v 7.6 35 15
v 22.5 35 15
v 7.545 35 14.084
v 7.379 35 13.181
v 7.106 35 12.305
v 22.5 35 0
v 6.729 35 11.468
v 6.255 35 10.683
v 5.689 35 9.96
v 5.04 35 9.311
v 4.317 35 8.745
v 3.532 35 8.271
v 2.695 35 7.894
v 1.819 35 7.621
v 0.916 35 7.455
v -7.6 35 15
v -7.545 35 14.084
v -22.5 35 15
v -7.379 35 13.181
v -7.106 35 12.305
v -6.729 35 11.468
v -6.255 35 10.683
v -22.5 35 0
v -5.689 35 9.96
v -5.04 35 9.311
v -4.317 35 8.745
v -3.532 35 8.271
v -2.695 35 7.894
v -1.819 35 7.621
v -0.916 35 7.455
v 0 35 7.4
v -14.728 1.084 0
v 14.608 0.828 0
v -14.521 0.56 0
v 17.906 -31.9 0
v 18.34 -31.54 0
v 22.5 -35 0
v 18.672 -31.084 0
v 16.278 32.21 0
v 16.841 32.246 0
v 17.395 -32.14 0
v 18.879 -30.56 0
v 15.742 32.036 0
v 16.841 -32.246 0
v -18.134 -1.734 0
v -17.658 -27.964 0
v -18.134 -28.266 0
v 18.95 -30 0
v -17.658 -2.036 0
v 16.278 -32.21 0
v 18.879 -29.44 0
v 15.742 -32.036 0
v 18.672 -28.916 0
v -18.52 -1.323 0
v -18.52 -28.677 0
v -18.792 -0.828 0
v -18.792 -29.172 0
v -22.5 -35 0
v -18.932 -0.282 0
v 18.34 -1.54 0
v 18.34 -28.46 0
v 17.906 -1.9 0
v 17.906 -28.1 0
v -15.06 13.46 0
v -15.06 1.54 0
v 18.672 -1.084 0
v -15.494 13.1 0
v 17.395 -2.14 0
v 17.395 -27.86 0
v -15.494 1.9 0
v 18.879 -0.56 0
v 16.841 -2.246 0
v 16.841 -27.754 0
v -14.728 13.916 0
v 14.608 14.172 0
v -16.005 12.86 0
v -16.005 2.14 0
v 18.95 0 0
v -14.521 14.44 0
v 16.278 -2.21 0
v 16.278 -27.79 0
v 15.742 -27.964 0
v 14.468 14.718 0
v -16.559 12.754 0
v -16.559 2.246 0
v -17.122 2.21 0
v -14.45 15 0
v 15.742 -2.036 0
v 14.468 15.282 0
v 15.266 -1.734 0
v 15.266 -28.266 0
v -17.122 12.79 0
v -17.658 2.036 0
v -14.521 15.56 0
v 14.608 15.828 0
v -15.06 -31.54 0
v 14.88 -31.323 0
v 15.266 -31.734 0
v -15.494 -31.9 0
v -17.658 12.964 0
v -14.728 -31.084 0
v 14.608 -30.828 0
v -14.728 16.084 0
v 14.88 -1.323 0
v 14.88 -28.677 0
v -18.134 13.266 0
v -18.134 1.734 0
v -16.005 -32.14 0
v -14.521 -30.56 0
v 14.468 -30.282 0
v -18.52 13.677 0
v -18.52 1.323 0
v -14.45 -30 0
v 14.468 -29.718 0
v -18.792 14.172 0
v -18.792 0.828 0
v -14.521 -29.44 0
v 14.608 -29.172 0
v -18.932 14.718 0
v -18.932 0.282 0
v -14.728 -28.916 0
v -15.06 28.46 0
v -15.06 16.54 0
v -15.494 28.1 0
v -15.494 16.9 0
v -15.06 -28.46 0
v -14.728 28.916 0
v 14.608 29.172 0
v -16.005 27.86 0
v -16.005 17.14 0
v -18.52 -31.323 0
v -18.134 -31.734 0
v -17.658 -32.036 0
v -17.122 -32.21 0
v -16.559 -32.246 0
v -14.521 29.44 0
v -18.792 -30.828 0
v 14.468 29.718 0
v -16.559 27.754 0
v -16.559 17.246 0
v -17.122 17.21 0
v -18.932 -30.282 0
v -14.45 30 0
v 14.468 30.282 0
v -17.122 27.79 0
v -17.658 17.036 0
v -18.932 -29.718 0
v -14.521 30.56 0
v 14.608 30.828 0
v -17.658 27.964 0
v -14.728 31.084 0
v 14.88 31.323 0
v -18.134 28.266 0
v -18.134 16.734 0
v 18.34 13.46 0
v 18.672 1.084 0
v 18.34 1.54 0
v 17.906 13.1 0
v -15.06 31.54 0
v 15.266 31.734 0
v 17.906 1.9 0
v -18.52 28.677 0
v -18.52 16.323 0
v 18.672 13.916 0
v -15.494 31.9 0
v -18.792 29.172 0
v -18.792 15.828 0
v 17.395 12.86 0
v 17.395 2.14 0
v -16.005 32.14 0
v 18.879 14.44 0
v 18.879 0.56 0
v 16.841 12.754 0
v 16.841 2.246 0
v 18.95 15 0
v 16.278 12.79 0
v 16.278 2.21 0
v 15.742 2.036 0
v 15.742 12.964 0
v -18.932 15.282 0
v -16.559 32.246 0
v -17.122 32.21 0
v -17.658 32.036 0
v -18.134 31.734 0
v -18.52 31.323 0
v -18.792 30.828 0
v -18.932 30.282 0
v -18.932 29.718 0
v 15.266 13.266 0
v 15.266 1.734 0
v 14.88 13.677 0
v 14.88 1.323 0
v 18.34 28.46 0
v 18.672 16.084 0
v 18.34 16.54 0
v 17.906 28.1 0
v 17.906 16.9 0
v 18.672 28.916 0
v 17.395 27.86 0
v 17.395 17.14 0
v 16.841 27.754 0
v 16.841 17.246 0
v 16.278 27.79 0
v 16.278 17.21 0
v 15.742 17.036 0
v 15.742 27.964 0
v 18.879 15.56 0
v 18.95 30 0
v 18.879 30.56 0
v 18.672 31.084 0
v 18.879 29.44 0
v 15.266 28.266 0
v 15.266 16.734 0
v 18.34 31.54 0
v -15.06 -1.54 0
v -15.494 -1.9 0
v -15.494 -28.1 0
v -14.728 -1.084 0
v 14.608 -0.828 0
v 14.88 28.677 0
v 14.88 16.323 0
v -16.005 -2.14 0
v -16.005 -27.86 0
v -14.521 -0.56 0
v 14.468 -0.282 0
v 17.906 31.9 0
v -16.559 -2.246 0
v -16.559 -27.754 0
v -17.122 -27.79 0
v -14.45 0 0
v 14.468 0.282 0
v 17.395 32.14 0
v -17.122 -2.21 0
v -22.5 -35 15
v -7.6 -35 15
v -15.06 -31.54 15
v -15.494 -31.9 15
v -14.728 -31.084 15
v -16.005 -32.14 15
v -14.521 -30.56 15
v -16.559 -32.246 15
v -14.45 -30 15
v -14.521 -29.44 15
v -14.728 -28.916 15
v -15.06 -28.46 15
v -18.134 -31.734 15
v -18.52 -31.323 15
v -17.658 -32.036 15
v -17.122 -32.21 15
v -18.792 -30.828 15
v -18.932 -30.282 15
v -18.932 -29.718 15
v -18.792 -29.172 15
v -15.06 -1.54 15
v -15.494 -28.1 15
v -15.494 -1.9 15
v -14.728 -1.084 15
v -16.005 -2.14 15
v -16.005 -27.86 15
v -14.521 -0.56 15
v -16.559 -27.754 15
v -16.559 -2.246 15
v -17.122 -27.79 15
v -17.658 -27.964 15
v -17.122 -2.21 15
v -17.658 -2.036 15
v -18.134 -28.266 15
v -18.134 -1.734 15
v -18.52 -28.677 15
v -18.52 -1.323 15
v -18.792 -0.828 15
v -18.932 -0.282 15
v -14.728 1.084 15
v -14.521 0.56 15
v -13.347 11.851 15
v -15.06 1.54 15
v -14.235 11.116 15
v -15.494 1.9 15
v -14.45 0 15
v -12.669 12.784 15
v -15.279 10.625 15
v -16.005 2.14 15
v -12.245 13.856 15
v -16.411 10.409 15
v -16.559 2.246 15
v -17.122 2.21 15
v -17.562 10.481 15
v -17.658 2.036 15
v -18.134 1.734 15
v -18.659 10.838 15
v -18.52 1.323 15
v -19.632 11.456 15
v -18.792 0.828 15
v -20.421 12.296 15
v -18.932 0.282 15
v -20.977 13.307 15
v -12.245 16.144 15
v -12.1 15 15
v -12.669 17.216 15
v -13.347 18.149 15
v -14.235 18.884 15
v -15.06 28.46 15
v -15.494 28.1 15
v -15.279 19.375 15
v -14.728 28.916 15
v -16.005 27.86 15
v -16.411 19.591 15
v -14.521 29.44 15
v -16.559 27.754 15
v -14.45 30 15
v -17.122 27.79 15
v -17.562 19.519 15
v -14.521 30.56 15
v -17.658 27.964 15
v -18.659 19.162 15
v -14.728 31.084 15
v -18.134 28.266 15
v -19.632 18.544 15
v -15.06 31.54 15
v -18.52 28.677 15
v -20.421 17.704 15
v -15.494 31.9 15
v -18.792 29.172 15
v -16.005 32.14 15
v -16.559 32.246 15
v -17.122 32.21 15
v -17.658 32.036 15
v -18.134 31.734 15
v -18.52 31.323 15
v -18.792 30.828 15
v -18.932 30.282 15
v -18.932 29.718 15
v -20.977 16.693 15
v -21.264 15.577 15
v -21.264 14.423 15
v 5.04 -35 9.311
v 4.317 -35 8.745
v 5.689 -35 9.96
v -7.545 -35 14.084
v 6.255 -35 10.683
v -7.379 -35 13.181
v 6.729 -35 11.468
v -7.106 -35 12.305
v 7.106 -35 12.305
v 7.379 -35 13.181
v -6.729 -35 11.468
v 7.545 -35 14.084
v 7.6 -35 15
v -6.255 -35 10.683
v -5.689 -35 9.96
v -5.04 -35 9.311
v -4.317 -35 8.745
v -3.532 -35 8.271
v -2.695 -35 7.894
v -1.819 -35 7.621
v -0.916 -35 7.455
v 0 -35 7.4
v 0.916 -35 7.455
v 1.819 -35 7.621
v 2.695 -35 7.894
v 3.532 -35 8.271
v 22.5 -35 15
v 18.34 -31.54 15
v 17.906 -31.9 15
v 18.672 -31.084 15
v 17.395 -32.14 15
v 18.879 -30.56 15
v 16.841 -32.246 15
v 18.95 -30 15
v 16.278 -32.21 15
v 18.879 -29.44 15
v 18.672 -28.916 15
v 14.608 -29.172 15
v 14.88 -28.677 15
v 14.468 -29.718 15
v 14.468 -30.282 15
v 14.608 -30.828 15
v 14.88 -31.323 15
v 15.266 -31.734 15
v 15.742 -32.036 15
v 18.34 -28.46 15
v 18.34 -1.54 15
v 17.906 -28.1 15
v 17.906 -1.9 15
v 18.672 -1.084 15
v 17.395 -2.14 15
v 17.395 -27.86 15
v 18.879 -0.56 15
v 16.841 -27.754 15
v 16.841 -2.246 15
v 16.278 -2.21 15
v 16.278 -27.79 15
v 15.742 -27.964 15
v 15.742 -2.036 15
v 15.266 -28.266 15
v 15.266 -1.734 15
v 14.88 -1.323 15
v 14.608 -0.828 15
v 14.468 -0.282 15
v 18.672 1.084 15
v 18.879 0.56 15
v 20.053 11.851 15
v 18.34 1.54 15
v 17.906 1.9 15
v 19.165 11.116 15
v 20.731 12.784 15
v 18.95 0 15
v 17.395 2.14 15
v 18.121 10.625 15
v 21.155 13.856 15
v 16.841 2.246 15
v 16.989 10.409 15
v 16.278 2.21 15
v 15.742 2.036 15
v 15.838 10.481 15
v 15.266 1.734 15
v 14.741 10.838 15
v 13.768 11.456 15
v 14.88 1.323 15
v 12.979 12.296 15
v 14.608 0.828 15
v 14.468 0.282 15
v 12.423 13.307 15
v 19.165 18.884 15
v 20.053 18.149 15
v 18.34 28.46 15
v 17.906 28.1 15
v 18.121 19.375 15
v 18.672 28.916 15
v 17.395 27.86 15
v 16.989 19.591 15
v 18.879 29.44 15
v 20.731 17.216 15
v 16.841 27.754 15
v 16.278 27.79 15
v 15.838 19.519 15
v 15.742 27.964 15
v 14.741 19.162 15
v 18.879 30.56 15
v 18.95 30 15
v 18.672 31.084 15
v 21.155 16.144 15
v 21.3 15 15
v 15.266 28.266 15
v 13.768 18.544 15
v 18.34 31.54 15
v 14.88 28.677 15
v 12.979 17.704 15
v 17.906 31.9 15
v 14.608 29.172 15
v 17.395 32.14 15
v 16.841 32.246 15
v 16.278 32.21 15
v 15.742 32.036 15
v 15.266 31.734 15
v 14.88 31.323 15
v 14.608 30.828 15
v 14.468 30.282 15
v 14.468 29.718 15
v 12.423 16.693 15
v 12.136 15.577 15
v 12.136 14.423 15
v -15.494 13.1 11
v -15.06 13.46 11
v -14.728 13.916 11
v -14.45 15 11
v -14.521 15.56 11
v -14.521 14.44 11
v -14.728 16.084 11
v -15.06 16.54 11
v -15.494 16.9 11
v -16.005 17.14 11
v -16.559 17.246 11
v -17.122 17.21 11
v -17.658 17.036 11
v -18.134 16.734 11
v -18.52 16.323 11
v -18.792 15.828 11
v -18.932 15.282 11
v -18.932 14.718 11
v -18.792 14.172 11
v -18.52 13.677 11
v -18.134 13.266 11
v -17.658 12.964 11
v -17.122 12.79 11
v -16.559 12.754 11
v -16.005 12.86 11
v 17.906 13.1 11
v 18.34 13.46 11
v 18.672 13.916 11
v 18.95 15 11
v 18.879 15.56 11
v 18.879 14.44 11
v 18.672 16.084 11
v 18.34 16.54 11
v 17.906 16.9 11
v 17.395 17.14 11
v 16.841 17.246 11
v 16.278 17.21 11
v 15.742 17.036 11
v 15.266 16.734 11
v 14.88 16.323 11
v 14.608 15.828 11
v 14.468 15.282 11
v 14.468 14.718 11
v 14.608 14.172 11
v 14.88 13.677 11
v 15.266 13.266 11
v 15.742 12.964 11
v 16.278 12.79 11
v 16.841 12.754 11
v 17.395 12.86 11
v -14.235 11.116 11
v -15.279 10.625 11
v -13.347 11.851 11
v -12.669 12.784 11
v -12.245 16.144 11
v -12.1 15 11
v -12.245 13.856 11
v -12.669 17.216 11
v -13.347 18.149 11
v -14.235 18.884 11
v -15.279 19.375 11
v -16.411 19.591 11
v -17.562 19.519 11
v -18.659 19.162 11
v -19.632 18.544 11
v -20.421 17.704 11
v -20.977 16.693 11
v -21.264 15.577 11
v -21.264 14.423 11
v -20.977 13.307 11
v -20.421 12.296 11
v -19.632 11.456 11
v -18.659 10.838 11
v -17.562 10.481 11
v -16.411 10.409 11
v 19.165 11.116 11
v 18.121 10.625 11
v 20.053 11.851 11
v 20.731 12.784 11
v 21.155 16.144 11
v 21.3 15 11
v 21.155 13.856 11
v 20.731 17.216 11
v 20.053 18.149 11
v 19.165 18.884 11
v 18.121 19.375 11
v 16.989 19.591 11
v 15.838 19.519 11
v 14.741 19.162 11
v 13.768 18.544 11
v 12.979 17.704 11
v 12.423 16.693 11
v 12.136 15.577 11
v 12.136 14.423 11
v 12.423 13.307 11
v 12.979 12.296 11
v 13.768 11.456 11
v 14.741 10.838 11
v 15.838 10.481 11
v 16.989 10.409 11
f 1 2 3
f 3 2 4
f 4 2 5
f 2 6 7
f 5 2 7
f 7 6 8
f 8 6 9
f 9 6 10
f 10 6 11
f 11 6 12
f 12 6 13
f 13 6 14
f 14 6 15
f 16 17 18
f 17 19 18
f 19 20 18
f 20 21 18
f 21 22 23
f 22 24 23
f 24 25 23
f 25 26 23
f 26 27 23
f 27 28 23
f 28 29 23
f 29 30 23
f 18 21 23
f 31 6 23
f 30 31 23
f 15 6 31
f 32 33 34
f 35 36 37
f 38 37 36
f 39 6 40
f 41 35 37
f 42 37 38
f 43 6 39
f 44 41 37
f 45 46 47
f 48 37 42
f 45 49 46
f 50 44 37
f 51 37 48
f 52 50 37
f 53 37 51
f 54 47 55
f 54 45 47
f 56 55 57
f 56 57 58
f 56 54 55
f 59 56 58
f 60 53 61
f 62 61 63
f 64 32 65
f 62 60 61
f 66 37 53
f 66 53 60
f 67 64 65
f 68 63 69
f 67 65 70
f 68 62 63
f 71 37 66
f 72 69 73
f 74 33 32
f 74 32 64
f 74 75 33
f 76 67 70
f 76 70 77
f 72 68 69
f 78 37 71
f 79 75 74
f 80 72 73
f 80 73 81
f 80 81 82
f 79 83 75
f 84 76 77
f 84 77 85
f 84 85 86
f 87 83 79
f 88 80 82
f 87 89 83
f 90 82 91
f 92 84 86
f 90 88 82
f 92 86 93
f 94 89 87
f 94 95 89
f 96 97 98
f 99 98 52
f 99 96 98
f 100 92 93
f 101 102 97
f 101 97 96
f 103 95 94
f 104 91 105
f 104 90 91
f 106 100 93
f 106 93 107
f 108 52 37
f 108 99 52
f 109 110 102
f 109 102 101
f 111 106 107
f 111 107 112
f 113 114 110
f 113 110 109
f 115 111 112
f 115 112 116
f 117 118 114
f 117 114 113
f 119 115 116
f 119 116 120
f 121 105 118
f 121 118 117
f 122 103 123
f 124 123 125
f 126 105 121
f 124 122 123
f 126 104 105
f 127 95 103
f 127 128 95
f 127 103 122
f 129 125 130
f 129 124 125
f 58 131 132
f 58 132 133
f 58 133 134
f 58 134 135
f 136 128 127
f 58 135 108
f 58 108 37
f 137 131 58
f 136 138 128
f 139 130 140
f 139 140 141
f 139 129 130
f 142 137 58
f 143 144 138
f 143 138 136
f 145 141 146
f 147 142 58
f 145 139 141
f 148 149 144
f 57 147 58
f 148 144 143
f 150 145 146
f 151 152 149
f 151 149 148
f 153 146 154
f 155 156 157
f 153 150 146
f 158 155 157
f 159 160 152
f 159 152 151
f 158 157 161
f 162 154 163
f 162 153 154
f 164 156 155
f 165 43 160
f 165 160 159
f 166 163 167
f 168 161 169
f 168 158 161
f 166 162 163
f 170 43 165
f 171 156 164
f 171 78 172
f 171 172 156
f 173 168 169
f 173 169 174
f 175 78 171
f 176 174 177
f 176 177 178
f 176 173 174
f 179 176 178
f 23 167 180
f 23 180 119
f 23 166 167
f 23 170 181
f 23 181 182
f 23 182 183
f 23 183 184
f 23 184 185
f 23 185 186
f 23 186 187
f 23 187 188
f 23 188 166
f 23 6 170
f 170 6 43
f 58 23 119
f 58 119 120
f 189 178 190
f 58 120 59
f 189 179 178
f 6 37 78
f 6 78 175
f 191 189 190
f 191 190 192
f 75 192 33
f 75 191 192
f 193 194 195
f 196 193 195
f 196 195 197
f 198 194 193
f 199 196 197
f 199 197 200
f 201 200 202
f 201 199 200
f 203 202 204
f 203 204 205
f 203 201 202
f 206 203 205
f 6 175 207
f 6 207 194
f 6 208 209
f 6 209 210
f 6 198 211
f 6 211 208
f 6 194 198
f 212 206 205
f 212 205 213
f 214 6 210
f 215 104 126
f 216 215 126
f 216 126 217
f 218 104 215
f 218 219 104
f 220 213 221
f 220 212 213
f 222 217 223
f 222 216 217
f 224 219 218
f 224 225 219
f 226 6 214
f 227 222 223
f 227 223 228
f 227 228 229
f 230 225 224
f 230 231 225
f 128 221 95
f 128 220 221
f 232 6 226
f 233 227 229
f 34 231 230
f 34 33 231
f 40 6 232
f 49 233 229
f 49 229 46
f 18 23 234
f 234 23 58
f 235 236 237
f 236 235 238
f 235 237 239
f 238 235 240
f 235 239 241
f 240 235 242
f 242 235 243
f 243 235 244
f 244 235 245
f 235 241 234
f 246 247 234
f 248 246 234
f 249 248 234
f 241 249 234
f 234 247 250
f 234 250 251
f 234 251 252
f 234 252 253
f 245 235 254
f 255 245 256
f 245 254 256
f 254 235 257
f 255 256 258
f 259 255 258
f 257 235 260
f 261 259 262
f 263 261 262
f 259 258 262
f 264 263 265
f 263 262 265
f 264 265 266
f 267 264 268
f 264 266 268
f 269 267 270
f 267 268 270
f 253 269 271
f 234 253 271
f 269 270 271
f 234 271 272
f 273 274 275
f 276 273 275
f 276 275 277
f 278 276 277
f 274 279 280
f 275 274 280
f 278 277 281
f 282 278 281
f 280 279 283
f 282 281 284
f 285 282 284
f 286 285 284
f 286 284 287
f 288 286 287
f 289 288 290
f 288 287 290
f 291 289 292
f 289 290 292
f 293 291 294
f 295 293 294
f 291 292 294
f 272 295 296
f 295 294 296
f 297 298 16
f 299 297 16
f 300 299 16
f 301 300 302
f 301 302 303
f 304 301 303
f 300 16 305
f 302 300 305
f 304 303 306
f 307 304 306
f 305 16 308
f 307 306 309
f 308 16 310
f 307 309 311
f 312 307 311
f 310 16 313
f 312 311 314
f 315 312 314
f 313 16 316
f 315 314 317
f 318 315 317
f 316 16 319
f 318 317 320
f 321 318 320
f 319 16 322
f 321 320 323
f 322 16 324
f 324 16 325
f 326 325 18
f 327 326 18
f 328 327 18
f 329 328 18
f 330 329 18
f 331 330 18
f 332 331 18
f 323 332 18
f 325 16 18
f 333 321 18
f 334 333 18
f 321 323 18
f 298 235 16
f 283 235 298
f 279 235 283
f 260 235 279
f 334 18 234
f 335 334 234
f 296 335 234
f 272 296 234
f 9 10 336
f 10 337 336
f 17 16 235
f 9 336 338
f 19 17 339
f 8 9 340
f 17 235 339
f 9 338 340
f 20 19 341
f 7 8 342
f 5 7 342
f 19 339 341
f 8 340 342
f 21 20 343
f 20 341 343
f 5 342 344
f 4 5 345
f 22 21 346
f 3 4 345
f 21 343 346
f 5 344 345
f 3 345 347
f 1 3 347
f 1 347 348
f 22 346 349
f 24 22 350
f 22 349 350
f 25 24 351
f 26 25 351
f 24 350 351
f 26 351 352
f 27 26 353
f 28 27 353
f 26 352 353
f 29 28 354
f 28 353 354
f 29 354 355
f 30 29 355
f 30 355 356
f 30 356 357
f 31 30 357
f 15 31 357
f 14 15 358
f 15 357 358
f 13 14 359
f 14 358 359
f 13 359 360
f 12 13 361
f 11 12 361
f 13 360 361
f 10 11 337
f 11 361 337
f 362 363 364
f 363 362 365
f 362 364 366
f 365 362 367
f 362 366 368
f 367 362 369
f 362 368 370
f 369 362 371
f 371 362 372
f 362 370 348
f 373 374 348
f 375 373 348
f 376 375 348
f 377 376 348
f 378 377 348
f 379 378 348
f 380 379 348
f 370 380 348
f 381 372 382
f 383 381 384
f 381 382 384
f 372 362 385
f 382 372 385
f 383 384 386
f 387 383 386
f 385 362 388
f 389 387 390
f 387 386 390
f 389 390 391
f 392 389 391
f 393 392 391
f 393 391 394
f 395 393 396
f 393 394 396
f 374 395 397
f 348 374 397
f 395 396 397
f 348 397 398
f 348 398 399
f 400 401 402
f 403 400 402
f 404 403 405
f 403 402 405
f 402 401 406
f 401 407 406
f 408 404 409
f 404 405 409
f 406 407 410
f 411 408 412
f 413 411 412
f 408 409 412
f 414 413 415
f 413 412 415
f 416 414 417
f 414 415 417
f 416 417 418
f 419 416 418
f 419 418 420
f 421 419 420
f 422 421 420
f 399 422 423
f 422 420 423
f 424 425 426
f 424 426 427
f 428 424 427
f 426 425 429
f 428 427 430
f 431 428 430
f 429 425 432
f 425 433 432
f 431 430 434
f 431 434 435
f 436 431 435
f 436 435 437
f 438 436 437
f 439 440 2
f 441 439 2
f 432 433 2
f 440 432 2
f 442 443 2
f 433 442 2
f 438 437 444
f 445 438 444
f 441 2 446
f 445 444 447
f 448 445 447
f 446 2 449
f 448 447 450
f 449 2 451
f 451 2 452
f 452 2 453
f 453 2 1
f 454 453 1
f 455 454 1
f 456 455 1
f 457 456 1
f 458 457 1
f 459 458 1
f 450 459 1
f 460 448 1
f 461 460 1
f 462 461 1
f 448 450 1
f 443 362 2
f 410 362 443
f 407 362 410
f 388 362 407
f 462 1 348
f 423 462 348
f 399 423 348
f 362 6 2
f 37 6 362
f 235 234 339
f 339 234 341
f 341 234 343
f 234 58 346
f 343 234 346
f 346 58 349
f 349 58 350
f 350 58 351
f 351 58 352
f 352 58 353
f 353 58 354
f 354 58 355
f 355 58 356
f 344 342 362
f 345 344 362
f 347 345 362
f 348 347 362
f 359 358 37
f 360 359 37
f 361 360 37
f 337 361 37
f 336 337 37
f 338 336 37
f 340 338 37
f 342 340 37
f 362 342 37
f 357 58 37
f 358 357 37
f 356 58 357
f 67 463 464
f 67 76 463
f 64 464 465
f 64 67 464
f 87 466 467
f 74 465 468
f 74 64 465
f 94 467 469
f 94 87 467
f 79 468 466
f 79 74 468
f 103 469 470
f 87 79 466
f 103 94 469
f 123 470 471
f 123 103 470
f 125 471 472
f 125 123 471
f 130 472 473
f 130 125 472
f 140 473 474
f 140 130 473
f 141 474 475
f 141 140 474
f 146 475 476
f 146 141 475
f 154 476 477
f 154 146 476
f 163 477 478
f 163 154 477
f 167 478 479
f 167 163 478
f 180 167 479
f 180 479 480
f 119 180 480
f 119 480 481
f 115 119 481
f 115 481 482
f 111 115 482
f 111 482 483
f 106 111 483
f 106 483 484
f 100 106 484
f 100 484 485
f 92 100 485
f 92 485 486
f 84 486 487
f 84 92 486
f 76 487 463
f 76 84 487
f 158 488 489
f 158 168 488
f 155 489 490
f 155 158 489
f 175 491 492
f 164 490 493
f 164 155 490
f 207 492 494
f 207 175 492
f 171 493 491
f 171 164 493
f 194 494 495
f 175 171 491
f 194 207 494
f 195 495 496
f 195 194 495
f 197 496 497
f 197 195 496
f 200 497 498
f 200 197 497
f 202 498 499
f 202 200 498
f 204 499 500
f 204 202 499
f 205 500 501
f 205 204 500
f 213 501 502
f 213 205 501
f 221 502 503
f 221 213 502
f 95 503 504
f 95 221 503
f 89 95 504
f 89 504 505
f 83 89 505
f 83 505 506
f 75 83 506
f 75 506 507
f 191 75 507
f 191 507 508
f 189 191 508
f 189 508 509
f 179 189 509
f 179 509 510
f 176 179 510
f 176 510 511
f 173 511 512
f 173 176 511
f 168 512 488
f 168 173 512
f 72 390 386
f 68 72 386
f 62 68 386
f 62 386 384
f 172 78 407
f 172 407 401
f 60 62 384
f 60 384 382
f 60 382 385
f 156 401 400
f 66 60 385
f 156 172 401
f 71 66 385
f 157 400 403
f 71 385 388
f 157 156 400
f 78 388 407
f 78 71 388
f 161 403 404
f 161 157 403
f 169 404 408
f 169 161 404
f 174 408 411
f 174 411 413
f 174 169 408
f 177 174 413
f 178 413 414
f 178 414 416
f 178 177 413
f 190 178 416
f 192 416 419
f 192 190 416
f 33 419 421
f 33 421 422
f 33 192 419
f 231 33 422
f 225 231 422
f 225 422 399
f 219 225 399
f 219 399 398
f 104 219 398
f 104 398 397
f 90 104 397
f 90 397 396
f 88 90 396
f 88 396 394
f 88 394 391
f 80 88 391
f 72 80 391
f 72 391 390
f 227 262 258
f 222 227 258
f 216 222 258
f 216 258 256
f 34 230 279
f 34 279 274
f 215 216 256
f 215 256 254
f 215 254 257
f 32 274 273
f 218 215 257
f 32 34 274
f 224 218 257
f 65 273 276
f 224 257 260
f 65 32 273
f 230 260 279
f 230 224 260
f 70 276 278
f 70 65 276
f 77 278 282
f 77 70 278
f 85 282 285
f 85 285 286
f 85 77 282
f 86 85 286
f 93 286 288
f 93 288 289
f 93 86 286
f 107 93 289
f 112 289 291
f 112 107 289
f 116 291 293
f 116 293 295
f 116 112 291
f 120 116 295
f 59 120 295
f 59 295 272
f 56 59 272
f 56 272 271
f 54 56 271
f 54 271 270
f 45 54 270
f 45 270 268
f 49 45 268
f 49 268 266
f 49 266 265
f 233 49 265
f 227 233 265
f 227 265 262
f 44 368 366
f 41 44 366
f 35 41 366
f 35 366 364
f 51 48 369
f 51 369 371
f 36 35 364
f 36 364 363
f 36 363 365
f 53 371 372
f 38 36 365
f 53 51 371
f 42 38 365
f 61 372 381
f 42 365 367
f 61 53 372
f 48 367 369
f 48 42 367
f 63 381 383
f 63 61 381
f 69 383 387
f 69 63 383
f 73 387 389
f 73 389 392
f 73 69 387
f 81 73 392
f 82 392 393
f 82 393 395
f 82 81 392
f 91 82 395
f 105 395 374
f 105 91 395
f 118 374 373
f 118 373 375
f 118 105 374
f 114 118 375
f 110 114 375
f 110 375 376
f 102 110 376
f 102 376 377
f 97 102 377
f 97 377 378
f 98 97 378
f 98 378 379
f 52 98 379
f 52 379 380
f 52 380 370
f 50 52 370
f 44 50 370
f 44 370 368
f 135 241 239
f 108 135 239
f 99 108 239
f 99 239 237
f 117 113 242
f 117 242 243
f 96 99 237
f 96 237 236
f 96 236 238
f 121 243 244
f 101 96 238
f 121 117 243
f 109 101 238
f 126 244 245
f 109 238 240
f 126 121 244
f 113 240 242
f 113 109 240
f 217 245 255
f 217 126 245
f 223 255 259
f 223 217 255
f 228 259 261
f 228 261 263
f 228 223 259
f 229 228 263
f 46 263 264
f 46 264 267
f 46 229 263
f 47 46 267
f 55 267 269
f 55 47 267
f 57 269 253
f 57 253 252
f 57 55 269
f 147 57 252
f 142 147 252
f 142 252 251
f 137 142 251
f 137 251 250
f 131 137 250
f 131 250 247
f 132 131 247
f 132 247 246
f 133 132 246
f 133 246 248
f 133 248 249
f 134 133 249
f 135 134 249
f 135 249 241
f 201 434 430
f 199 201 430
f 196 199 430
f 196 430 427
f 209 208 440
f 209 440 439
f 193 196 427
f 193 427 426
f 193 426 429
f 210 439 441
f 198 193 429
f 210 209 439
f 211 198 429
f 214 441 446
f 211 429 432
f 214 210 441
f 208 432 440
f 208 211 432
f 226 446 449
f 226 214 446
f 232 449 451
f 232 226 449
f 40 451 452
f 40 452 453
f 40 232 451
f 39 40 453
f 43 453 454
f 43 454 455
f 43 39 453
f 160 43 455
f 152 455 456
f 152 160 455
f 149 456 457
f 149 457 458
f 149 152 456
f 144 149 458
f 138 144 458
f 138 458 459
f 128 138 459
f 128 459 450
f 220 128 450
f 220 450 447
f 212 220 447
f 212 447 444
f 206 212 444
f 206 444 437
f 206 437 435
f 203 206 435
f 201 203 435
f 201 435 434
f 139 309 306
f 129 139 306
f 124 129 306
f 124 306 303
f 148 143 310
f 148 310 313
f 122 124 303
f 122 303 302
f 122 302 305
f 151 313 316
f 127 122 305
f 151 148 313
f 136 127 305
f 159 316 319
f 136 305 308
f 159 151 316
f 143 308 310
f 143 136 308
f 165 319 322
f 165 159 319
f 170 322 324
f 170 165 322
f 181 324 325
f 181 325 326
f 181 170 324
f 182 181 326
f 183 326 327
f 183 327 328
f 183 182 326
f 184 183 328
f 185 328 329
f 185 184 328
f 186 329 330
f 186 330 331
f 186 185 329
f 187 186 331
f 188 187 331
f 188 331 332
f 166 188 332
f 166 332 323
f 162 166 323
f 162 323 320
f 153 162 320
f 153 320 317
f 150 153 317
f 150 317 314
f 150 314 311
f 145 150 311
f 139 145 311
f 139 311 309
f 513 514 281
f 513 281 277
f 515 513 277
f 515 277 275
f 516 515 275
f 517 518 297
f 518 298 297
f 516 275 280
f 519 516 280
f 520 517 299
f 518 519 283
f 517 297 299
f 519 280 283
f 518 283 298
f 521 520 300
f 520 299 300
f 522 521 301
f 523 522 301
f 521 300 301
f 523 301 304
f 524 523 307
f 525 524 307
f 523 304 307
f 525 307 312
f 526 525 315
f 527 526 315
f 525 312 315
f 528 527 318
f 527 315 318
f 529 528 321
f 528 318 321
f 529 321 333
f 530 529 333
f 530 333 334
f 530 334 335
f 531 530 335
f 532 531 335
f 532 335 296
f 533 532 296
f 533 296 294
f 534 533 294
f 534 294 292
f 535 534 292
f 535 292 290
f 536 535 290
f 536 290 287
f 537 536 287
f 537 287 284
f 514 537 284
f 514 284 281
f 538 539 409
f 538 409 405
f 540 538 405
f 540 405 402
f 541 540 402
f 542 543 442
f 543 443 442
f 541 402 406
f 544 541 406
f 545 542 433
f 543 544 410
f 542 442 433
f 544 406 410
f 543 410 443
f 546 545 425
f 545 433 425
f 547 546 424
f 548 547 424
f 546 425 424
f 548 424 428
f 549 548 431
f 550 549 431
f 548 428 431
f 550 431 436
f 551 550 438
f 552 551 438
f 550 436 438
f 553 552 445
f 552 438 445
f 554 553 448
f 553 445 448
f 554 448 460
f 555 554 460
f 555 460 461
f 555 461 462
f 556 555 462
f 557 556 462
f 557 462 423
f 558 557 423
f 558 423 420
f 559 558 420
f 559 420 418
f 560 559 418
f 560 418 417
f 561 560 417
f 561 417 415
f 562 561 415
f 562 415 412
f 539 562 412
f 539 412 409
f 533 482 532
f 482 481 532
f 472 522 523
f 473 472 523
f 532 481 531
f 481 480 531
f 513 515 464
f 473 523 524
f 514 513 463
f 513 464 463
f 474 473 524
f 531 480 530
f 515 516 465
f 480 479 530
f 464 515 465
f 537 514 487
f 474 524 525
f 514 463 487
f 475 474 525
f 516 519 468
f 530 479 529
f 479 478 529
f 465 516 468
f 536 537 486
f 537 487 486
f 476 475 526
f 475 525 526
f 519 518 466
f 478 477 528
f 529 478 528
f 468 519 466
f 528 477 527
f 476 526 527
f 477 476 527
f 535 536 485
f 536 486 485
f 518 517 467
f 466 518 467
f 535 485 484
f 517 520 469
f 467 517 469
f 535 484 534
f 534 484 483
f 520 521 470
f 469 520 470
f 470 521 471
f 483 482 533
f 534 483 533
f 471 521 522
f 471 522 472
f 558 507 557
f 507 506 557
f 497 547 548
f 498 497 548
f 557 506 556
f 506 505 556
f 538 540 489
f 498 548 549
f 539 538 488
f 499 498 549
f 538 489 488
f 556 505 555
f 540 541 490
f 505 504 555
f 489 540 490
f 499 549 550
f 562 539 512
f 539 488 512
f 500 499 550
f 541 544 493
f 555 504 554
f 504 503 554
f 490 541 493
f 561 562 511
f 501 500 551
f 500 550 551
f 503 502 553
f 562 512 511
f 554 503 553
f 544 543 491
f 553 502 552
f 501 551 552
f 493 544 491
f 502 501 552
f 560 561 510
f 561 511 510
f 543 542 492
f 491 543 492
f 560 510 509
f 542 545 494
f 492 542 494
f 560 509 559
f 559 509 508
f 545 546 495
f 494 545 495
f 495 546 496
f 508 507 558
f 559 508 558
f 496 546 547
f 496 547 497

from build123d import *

# Parameters (mm, degrees)
SKETCH_W        = 45
SKETCH_H        = 70
SKETCH_R        = 2.25
PAD_DEPTH       = 15
SKETCH001_R     = 7.6
POCKET_DEPTH    = 70.001
SKETCH002_R     = 4.6
POCKET001_DEPTH = 4


with BuildPart() as part:
    # Sketch → Pad (new body)
    with BuildSketch(Plane.XY):
        Rectangle(SKETCH_W, SKETCH_H)
        with Locations((-16.7, 30)):
            Circle(SKETCH_R, mode=Mode.SUBTRACT)
        with Locations((16.7, 30)):
            Circle(SKETCH_R, mode=Mode.SUBTRACT)
        with Locations((-16.7, -30)):
            Circle(SKETCH_R, mode=Mode.SUBTRACT)
        with Locations((16.7, -30)):
            Circle(SKETCH_R, mode=Mode.SUBTRACT)
        with Locations((-16.7, 0)):
            Circle(SKETCH_R, mode=Mode.SUBTRACT)
        with Locations((16.7, 0)):
            Circle(SKETCH_R, mode=Mode.SUBTRACT)
        with Locations((16.7, 15)):
            Circle(SKETCH_R, mode=Mode.SUBTRACT)
        with Locations((-16.7, 15)):
            Circle(SKETCH_R, mode=Mode.SUBTRACT)
    extrude(amount=PAD_DEPTH)

    # Sketch001 → Pocket (cut, through all)
    with BuildSketch(Plane.XZ.offset(35)):
        with Locations((0, 15)):
            Circle(SKETCH001_R)
    extrude(amount=-POCKET_DEPTH, mode=Mode.SUBTRACT)

    # Sketch002 → Pocket001 (cut)
    with BuildSketch(Plane.XY.offset(15)):
        with Locations((-16.7, 15)):
            Circle(SKETCH002_R)
        with Locations((16.7, 15)):
            Circle(SKETCH002_R)
    extrude(amount=-POCKET001_DEPTH, mode=Mode.SUBTRACT)


solid = part.part
